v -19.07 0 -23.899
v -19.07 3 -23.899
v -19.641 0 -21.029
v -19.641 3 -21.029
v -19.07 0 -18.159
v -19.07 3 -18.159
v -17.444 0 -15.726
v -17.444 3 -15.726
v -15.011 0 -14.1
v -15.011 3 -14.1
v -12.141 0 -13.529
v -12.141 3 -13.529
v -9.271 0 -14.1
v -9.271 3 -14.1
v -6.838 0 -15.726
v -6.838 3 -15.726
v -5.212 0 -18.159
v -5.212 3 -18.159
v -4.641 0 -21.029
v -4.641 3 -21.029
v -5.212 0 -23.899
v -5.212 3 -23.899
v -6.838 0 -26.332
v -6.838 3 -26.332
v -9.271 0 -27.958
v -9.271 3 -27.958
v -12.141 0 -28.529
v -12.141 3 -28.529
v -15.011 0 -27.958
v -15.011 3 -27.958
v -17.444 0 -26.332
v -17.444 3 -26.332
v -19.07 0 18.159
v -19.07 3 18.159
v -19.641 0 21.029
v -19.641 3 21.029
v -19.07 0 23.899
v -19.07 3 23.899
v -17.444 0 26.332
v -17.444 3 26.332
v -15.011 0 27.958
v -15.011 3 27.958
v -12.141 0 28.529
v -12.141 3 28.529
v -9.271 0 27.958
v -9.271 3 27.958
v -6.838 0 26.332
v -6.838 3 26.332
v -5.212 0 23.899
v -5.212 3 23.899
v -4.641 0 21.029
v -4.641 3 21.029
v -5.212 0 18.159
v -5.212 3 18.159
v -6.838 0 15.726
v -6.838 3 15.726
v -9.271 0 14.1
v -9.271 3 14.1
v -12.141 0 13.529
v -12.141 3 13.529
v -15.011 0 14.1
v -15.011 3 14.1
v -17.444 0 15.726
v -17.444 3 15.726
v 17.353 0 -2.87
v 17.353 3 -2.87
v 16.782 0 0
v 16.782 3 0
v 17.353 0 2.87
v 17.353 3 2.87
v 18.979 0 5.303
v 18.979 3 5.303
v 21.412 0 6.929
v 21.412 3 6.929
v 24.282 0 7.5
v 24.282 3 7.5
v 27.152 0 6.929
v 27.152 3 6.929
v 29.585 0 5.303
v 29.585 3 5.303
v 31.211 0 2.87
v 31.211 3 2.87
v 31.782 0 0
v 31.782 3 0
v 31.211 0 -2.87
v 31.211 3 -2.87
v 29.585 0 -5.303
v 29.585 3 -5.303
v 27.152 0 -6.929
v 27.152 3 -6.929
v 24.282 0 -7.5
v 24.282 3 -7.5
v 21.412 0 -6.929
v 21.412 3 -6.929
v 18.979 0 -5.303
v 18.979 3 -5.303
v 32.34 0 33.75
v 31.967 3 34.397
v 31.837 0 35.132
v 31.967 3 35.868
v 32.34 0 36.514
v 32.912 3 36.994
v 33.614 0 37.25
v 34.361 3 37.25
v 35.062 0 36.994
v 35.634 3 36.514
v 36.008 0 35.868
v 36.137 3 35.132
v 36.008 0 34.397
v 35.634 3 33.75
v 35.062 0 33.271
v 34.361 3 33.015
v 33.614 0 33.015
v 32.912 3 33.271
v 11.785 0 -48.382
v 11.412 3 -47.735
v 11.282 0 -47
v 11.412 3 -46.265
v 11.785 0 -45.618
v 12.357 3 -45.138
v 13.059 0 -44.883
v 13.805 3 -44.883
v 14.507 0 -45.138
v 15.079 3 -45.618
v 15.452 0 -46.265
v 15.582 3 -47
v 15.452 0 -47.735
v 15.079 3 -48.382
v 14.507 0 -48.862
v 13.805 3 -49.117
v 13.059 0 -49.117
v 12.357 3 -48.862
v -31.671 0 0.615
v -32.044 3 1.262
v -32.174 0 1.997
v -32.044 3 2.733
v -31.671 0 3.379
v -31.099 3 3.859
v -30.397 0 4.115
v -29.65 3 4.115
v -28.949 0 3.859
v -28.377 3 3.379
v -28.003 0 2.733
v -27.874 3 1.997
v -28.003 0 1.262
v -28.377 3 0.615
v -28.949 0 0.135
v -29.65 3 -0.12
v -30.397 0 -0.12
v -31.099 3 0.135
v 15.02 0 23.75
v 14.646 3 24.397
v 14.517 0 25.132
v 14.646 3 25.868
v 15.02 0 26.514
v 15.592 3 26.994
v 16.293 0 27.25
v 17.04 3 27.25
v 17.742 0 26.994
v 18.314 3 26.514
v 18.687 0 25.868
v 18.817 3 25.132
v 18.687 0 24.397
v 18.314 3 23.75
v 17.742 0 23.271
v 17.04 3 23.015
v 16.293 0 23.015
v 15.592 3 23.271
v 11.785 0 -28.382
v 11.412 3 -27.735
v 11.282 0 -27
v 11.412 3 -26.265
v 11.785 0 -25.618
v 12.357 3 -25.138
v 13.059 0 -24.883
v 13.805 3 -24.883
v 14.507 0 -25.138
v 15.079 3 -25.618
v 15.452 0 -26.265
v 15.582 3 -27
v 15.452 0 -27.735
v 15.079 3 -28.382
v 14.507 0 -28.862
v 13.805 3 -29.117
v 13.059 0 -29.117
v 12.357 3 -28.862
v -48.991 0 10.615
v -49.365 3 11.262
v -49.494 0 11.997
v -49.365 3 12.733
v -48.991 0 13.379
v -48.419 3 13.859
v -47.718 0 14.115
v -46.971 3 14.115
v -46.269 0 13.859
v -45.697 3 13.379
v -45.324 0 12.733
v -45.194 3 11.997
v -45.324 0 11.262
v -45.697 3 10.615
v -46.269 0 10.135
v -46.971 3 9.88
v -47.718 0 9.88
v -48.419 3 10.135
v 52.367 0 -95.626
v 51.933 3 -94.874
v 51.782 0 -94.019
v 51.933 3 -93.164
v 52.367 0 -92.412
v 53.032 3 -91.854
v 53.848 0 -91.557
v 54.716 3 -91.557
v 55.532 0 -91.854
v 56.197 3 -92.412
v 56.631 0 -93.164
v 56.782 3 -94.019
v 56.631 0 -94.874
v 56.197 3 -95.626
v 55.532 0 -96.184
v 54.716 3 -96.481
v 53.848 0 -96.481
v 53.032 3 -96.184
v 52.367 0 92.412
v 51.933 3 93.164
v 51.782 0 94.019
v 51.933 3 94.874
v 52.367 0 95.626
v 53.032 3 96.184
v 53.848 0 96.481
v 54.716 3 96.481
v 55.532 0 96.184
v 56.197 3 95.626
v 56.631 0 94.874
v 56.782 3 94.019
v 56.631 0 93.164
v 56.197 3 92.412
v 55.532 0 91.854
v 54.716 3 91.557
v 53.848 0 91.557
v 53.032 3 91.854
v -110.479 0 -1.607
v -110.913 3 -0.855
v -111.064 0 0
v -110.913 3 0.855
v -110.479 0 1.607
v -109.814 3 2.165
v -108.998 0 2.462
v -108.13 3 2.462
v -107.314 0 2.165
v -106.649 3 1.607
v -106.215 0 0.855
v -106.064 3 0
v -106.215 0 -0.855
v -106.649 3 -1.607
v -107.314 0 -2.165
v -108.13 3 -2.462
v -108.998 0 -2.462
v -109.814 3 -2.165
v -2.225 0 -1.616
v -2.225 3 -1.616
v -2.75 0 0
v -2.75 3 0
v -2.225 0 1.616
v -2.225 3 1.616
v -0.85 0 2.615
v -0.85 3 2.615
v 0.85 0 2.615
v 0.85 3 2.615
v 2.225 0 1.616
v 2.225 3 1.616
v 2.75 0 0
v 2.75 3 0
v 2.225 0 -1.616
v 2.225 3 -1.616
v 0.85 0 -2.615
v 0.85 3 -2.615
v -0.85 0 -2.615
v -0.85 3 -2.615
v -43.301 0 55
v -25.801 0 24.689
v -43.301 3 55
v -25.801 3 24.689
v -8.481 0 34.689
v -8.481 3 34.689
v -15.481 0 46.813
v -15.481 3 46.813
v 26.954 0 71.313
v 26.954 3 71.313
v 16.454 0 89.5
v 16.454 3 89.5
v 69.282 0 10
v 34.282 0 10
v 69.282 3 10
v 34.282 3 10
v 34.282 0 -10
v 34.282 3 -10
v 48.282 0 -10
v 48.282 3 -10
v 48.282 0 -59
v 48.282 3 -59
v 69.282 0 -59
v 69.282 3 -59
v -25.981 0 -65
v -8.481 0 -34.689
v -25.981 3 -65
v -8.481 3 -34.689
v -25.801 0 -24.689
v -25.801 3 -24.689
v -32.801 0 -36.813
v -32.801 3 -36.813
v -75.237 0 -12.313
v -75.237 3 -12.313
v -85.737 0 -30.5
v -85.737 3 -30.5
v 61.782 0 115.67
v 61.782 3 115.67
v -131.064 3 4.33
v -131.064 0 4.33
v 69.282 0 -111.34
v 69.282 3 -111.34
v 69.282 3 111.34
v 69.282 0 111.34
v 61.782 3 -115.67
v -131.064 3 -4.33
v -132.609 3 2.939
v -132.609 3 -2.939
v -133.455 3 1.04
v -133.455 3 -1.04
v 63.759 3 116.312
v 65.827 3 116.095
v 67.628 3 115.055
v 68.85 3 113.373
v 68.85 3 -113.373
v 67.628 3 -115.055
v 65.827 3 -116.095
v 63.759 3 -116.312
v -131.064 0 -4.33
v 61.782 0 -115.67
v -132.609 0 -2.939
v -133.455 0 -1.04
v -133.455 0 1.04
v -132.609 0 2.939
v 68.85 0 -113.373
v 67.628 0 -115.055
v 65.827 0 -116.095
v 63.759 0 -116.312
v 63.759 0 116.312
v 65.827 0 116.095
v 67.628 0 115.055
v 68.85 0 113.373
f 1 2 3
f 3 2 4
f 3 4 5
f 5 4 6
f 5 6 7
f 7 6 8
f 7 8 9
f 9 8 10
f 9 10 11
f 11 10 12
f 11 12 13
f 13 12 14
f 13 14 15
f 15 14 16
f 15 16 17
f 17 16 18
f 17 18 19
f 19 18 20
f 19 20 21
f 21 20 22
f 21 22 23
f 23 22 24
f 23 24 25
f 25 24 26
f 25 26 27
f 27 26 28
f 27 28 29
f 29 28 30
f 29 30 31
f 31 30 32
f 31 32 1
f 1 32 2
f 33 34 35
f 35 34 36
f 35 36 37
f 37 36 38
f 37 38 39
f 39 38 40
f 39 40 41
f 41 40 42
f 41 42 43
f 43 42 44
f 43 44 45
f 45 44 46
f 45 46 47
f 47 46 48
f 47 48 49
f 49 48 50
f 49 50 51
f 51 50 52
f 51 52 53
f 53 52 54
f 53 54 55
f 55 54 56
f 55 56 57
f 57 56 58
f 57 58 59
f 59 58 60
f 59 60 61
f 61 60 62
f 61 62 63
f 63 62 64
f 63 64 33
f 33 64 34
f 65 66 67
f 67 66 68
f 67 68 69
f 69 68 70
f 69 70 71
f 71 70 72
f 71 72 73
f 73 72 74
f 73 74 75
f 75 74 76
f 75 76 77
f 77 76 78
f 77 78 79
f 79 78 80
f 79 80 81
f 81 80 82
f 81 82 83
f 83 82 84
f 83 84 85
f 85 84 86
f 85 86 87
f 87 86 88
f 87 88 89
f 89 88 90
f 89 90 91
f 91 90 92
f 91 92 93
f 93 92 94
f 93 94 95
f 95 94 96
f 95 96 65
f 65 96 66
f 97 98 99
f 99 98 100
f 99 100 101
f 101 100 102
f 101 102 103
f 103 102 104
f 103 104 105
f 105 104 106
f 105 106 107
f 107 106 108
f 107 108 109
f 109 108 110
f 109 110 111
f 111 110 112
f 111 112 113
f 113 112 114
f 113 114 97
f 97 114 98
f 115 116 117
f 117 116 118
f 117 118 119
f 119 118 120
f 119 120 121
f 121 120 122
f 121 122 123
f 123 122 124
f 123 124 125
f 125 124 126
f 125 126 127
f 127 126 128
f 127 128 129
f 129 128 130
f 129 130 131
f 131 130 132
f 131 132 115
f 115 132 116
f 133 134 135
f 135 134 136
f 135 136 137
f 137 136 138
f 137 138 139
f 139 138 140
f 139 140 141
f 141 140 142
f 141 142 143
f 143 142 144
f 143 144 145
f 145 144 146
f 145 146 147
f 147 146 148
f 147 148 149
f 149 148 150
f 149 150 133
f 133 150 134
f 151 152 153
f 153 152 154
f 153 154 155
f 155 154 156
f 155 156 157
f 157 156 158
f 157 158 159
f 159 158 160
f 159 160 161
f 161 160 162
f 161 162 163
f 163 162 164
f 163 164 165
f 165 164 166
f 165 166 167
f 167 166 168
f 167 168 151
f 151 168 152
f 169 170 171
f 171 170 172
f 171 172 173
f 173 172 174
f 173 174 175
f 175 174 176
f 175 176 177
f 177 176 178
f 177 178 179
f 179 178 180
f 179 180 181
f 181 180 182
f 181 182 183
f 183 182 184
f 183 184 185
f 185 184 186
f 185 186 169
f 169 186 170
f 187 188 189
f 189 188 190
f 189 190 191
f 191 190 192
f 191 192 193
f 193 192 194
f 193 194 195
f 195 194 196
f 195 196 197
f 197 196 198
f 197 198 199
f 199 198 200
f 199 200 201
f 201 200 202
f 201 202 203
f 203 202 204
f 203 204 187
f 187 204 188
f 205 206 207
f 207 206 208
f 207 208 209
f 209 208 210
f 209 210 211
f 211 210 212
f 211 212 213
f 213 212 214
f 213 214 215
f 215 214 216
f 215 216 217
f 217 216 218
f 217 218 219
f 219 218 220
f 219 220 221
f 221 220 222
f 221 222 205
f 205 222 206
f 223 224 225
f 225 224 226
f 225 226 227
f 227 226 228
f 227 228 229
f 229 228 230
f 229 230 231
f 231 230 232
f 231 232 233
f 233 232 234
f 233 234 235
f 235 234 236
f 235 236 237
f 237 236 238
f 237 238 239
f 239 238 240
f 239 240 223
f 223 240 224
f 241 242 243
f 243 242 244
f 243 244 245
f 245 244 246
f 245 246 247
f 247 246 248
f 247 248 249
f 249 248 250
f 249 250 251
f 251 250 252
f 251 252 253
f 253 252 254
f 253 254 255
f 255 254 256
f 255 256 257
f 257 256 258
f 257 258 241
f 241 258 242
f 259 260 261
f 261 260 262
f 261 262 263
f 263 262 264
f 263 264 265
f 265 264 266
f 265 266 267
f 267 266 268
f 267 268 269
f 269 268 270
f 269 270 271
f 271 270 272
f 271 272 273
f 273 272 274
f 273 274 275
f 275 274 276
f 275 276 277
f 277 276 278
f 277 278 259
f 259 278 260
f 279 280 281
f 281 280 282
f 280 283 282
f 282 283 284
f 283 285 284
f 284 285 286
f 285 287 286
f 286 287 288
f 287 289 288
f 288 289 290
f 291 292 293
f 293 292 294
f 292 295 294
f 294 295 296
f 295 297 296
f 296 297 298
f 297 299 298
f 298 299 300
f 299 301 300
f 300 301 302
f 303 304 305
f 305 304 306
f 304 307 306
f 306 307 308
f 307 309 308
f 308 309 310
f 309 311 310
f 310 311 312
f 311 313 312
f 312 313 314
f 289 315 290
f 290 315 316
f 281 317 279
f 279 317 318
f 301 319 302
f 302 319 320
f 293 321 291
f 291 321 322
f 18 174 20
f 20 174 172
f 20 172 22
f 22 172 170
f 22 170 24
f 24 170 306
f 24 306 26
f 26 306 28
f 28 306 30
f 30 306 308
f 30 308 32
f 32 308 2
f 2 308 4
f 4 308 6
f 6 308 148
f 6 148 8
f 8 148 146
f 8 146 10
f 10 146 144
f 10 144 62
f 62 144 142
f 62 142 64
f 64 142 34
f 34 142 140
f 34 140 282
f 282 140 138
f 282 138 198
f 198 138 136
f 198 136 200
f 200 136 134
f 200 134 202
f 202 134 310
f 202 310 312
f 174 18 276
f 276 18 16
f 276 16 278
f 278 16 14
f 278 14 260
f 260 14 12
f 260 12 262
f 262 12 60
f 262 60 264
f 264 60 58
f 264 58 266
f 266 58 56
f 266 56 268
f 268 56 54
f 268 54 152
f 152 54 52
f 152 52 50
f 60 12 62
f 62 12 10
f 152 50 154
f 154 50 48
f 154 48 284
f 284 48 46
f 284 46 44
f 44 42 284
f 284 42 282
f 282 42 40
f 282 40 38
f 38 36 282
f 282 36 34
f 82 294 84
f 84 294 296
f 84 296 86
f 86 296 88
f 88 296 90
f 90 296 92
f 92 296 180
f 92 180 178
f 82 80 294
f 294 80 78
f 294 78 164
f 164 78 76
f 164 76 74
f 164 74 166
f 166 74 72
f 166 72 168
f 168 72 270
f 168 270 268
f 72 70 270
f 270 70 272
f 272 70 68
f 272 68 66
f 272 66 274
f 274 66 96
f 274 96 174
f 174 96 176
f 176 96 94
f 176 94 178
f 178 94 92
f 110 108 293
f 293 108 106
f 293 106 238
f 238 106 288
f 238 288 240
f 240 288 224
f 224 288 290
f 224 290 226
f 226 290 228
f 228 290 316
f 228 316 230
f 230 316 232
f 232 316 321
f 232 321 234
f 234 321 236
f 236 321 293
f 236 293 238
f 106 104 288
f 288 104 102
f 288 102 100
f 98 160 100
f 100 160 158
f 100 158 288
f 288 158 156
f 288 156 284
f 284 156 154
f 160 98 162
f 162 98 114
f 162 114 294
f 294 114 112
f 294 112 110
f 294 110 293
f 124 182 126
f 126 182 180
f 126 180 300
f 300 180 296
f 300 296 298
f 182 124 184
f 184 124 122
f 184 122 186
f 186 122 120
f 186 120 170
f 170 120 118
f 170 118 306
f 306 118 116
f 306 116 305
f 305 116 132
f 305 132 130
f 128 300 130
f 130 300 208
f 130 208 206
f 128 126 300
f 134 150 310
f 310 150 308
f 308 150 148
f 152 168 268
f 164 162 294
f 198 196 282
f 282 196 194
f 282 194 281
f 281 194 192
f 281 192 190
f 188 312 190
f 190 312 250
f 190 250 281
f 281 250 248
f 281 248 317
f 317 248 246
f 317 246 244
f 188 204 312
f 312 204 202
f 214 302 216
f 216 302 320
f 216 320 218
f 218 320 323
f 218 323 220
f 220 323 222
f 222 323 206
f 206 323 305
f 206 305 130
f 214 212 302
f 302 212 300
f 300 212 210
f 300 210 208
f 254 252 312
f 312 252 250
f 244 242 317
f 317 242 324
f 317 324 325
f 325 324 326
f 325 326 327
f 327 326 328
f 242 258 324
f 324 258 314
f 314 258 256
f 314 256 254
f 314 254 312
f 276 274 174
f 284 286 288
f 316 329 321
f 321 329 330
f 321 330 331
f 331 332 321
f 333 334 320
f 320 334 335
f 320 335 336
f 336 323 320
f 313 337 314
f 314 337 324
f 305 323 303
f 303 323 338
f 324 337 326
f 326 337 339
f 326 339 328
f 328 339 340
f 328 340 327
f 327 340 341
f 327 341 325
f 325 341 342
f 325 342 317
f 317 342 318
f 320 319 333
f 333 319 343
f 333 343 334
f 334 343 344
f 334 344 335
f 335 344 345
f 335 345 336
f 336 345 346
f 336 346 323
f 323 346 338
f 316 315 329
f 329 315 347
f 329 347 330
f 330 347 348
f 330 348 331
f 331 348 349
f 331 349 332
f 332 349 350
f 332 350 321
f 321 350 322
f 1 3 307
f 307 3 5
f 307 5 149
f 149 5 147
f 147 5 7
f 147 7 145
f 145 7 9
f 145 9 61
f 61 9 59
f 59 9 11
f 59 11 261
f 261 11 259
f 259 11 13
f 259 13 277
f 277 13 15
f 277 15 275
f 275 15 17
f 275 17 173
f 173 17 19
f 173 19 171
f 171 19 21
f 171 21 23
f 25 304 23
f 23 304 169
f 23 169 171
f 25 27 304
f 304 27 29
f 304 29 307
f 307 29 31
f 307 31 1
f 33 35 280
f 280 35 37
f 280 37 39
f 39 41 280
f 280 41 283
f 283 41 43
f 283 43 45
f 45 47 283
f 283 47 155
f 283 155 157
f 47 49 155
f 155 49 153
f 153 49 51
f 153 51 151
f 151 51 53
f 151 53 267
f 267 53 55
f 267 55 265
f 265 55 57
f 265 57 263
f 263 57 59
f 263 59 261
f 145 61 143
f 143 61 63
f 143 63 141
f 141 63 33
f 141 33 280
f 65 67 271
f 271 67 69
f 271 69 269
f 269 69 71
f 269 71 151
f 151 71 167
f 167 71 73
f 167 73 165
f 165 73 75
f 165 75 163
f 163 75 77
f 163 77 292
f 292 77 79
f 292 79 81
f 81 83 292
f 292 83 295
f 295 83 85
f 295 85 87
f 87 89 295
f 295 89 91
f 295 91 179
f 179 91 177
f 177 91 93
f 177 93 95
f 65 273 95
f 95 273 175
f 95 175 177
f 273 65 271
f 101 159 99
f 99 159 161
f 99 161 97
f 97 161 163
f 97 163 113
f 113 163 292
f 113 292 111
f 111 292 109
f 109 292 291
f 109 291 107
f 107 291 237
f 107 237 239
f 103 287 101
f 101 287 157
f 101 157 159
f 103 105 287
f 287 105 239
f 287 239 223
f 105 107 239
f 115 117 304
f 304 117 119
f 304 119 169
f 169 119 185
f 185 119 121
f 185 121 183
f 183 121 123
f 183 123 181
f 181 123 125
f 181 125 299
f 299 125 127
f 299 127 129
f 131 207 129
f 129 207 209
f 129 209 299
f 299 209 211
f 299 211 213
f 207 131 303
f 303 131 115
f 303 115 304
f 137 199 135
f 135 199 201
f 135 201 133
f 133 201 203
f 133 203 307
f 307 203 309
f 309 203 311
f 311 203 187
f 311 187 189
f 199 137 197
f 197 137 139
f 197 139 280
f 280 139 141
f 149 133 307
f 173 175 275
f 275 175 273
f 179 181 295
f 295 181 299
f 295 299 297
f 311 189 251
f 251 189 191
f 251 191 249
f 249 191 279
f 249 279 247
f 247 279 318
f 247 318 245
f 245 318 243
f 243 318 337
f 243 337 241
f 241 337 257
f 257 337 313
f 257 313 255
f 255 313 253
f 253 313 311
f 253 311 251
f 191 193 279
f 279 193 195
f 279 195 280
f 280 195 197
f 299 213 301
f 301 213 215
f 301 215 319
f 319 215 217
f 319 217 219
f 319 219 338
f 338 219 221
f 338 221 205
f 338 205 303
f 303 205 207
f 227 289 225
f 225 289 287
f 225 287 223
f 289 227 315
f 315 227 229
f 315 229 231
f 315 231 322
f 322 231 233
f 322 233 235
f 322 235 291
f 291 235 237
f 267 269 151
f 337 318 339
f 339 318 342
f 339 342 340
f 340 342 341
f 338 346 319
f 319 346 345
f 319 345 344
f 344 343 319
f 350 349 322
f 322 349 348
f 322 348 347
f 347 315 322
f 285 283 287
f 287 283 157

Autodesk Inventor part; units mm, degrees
ref_plane "YZ Plane" through (0, 0, 0) normal (1, 0, 0) x (0, 1, 0)
ref_plane "XZ Plane" through (0, 0, 0) normal (0, 1, 0) x (-1, 0, 0)
ref_plane "XY Plane" through (0, 0, 0) normal (0, 0, 1) x (1, 0, 0)
sketch "Sketch1" plane through (0, 0, 0) normal (0, 1, 0) x (-1, 0, 0)
  line L0 (-61.782, 115.6699) -> (131.0641, 4.3301)
  line L1 (131.0641, -4.3301) -> (-61.782, -115.6699)
  line L2 (-69.282, -111.3397) -> (-69.282, 111.3397)
  arc A0 (131.0641, -4.3301) -> (131.0641, 4.3301) centre (128.5641, 0) ccw
  arc A1 (-69.282, -111.3397) -> (-61.782, -115.6699) centre (-64.282, -111.3397) ccw
  arc A2 (-61.782, 115.6699) -> (-69.282, 111.3397) centre (-64.282, 111.3397) ccw
  line L3 (34.641, -60) -> (-45.6615, 79.088)
  line L4 (-69.282, 0) -> (190.0751, 0)
  line L5 (34.641, 60) -> (-41.8401, -72.4692)
  circle A3 centre (0, 0) radius 2.5
  point P0 (0, 0)
  point P1 (-69.282, 120)
  point P2 (-69.282, -120)
  dimension "d5" = 240
  dimension "d9" = 60
  dimension "d10" = 60
  dimension "d14" = 5
  dimension "d25" = 5
extrude "Extrusion1" add sketch "Sketch1" along normal blind 3
sketch "Sketch2" plane through (0, 3, 0) normal (0, 1, 0) x (1, 0, 0)
  point P0 (0, 0)
ref_plane "Work Plane1" through (0, 1.5, 0) normal (0, 1, 0) x (1, 0, 0)
ref_plane "Work Plane2" through (0, 3, 0) normal (0.8660254, 0, 0.5) x (0, 1, 0)
ref_plane "Work Plane3" through (0, 3, 0) normal (-0.8660254, 0, 0.5) x (0, -1, 0)
ref_plane "Work Plane4" through (0, 3, 0) normal (0, 0, 1) x (1, 0, 0)
sketch "Sketch4" plane through (0, 3, 0) normal (0, 1, 0) x (1, 0, 0)
  point P0 (0, 0)
ref_plane "Work Plane5" through (0, 1.5, 0) normal (0, 1, 0) x (1, 0, 0)
ref_plane "Work Plane6" through (51.6025, 3, -19) normal (0, 0, 1) x (1, 0, 0)
sketch "Sketch7" plane through (0, 1.5, 0) normal (0, 1, 0) x (1, 0, 0)
  line L0 (-16.8875, -70.25) -> (-16.8875, -70.25)
  line L1 (-16.8875, -70.25) -> (-16.8875, -70.25)
  line L2 (-25.9808, -65) -> (-18.1865, -69.5)
  line L3 (-14.8875, -66.7859) -> (-16.8875, -70.25)
  line L4 (-14.1375, -65.4869) -> (-19.6375, -75.0131)
  line L5 (-19.6375, -75.0131) -> (-37.824, -64.5131)
  line L6 (-32.324, -54.9869) -> (-19.6375, -75.0131) construction
  line L7 (-37.824, -64.5131) -> (-32.324, -54.9869)
  line L8 (-37.824, -64.5131) -> (-14.1375, -65.4869) construction
  line L9 (-32.324, -54.9869) -> (-14.1375, -65.4869)
  line L10 (-8.4808, -34.6891) -> (-43.4808, -95.3109)
  line L11 (-60.8013, -85.3109) -> (-8.4808, -34.6891) construction
  line L12 (-60.8013, -85.3109) -> (-25.8013, -24.6891)
  line L13 (-25.8013, -24.6891) -> (-43.4808, -95.3109) construction
  line L14 (-7.6865, -51.3135) -> (-15.4808, -46.8135)
  line L15 (-25.9808, -65) -> (-8.4808, -34.6891)
  line L16 (-25.8013, -24.6891) -> (-8.4808, -34.6891)
  line L17 (-16.8875, -70.25) -> (-14.8875, -66.7859)
  line L18 (-18.1865, -69.5) -> (-7.6865, -51.3135)
  line L19 (16.4545, -89.5) -> (-18.1865, -69.5)
  line L20 (-7.6865, -51.3135) -> (26.9545, -71.3135)
  line L21 (26.9545, -71.3135) -> (16.4545, -89.5)
  line L22 (-14.8875, -66.7859) -> (-14.8875, -66.7859)
  line L23 (-43.4808, -95.3109) -> (-60.8013, -85.3109)
  line L24 (-34.641, -60) -> (-25.9808, -65)
  line L25 (-131.0641, -4.3301) -> (61.782, -115.6699) projected
  line L26 (69.282, 20.5) -> (69.282, 20.5)
  line L27 (69.282, 20.5) -> (69.282, 20.5)
  line L28 (104.282, 10) -> (104.282, -10)
  line L29 (74.782, -0.5) -> (63.782, -0.5)
  line L30 (69.282, 0) -> (69.282, 10)
  line L31 (104.282, -10) -> (34.282, -10)
  line L32 (63.782, -0.5) -> (74.782, 20.5) construction
  line L33 (74.782, 20.5) -> (74.782, -0.5)
  line L34 (104.282, -10) -> (34.282, 10) construction
  line L35 (34.282, -10) -> (104.282, 10) construction
  line L36 (63.782, -0.5) -> (63.782, 20.5)
  line L37 (74.782, -0.5) -> (63.782, 20.5) construction
  line L38 (34.282, -10) -> (34.282, 10)
  line L39 (34.282, 10) -> (104.282, 10)
  line L40 (69.282, 10) -> (34.282, 10)
  line L41 (65.282, 20.5) -> (69.282, 20.5)
  line L42 (65.282, 20.5) -> (65.282, 20.5)
  line L43 (69.282, 20.5) -> (65.282, 20.5)
  line L44 (63.782, 20.5) -> (74.782, 20.5)
  line L45 (69.282, 19) -> (48.282, 19)
  line L46 (69.282, 59) -> (69.282, 19)
  line L47 (69.282, 10) -> (69.282, 19)
  line L48 (48.282, 59) -> (69.282, 59)
  line L49 (48.282, 19) -> (48.282, 10)
  line L50 (48.282, 19) -> (48.282, 59)
  line L51 (-52.3945, 49.75) -> (-52.3945, 49.75)
  line L52 (-52.3945, 49.75) -> (-52.3945, 49.75)
  line L53 (-60.8013, 85.3109) -> (-43.4808, 95.3109)
  line L54 (-36.958, 65.0131) -> (-31.458, 55.4869)
  line L55 (-34.641, 60) -> (-43.3013, 55)
  line L56 (-43.4808, 95.3109) -> (-8.4808, 34.6891)
  line L57 (-31.458, 55.4869) -> (-55.1445, 54.5131) construction
  line L58 (-55.1445, 54.5131) -> (-36.958, 65.0131)
  line L59 (-43.4808, 95.3109) -> (-25.8013, 24.6891) construction
  line L60 (-8.4808, 34.6891) -> (-60.8013, 85.3109) construction
  line L61 (-31.458, 55.4869) -> (-49.6445, 44.9869)
  line L62 (-36.958, 65.0131) -> (-49.6445, 44.9869) construction
  line L63 (-8.4808, 34.6891) -> (-25.8013, 24.6891)
  line L64 (-25.8013, 24.6891) -> (-60.8013, 85.3109)
  line L65 (-43.3013, 55) -> (-25.8013, 24.6891)
  line L66 (-50.3945, 46.2859) -> (-52.3945, 49.75)
  line L67 (-50.3945, 46.2859) -> (-50.3945, 46.2859)
  line L68 (-52.3945, 49.75) -> (-50.3945, 46.2859)
  line L69 (-49.6445, 44.9869) -> (-55.1445, 54.5131)
  line L70 (-51.0955, 50.5) -> (-40.5955, 32.3135)
  line L71 (-85.7365, 30.5) -> (-51.0955, 50.5)
  line L72 (-43.3013, 55) -> (-51.0955, 50.5)
  line L73 (-75.2365, 12.3135) -> (-85.7365, 30.5)
  line L74 (-40.5955, 32.3135) -> (-32.8013, 36.8135)
  line L75 (-40.5955, 32.3135) -> (-75.2365, 12.3135)
  point P0 (0, 0)
  point P1 (-34.641, -60)
  point P2 (-16.8875, -70.25)
  point P3 (-28.7308, -69.7631)
  point P4 (-34.641, -60)
  point P5 (0, 0)
  point P6 (69.282, 111.3397)
  point P7 (69.282, 0)
  point P8 (69.282, 0)
  point P9 (0, 0)
  point P10 (-131.0641, 4.3301)
  point P11 (-34.641, 60)
  point P12 (-34.641, 60)
  point P13 (69.282, 20.5)
  point P14 (74.782, 10)
  point P15 (-52.3945, 49.75)
  point P16 (-46.0513, 59.7631)
  dimension "d59" = 10
  dimension "d60" = 35
  dimension "d61" = 11
  dimension "d62" = 21
  dimension "d63" = 4
  dimension "d64" = 9
  dimension "d65" = 21
  dimension "d66" = 40
  dimension "d129" = 360
extrude "Extrusion3" cut sketch "Sketch7" along normal mid plane 3
ref_plane "Work Plane8" through (-0.6865, 0, 39.1891) normal (-0.8660254, 0, -0.5) x (-0.5, 0, 0.8660254)
sketch "Sketch13" plane through (0, 3, 0) normal (0, 1, 0) x (1, 0, 0)
  circle A0 centre (0, 0) radius 2.75
  dimension "d124" = 5.5
extrude "Extrusion7" cut sketch "Sketch13" against normal through all
ref_plane "Work Plane9" through (-33.5955, 0, -20.1891) normal (0.8660254, 0, -0.5) x (-0.5, 0, -0.8660254)
sketch "Sketch15" plane through (0, 3, 0) normal (0, 1, 0) x (1, 0, 0)
  circle A0 centre (-108.5641, 0) radius 2.5 projected
  circle A1 centre (-108.5641, 0) radius 2.5
  circle A2 centre (54.282, -94.0192) radius 2.5
  circle A3 centre (54.282, 94.0192) radius 2.5
  point P0 (0, 0)
  dimension "d152" = 360
extrude "Extrusion9" cut sketch "Sketch15" against normal blind 10
sketch "Sketch16" plane through (0, 3, 0) normal (0, 1, 0) x (1, 0, 0)
  circle A0 centre (16.6667, -25.1325) radius 2.15 projected
  circle A1 centre (33.9872, -35.1325) radius 2.15 projected
  circle A2 centre (13.432, 27) radius 2.15 projected
  circle A3 centre (13.432, 47) radius 2.15 projected
  circle A4 centre (-47.3442, -11.9974) radius 2.15 projected
  circle A5 centre (-30.0237, -1.9974) radius 2.15 projected
  point P0 (0, 0)
extrude "Extrusion10" cut sketch "Sketch16" against normal through all
sketch "Sketch17" plane through (0, 3, 0) normal (0, 1, 0) x (1, 0, 0)
  line L0 (-25.8013, 24.6891) -> (-8.4808, 34.6891) projected
  line L1 (-17.141, 29.6891) -> (-7.7719, 13.4613)
  line L2 (-8.4808, 34.6891) -> (-25.8013, 24.6891) projected
  line L3 (-17.141, 29.6891) -> (-12.141, 21.0289)
  circle A0 centre (-12.141, 21.0289) radius 7.5
  circle A1 centre (-12.141, -21.0289) radius 7.5
  circle A2 centre (24.282, 0) radius 7.5
  point P0 (0, 0)
  dimension "d158" = 10
  dimension "d159" = 15
  dimension "d162" = 360
extrude "Extrusion11" cut sketch "Sketch17" against normal blind 10
properties part number "baseplate" material "PET Plastic"
